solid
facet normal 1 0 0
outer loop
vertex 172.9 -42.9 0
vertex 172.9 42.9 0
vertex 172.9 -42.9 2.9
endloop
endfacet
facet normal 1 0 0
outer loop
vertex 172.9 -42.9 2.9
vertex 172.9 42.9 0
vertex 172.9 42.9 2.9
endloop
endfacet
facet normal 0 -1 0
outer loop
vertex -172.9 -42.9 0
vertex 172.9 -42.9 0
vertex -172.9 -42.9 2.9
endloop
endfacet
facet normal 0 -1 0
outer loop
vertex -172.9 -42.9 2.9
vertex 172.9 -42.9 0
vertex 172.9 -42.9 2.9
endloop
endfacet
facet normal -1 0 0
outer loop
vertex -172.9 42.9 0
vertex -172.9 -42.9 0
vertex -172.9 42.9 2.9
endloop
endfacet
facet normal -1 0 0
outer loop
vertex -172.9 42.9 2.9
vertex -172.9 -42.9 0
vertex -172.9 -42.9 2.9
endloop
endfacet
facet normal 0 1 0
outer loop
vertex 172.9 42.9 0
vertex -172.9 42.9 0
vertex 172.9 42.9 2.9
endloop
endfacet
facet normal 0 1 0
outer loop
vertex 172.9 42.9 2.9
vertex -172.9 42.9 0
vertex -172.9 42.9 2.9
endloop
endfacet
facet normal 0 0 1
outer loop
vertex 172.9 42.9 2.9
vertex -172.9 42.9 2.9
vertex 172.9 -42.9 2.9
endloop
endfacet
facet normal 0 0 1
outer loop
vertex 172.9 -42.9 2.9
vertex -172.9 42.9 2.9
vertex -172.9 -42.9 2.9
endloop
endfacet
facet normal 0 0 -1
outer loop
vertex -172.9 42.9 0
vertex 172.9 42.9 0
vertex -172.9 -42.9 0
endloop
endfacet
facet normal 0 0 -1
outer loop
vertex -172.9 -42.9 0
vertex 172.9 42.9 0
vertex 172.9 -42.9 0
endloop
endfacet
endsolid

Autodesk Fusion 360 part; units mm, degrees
sketch "Sketch1" plane through (0, 0, 0) normal (0, 0, 1) x (1, 0, 0)
  line L0 (172.9, -42.9) -> (-172.9, -42.9)
  line L1 (-172.9, -42.9) -> (-172.9, 42.9)
  line L2 (-172.9, 42.9) -> (172.9, 42.9)
  line L3 (172.9, 42.9) -> (172.9, -42.9)
  line L4 (172.9, -42.9) -> (-172.9, 42.9) construction
  line L5 (-172.9, -42.9) -> (172.9, 42.9) construction
  dimension "d1" = 345.8
  dimension "d2" = 85.8
extrude "Extrude1" add sketch "Sketch1" along normal blind 2.9 makes body 1
copy_body "Body->Comp1" bodies 1 removing the originals makes body 2 in component "Dhakna"
component "Dhakna" placed x (1, 0, 0) y (0, 1, 0) z (0, 0, 1) at (0, 0, 0)
